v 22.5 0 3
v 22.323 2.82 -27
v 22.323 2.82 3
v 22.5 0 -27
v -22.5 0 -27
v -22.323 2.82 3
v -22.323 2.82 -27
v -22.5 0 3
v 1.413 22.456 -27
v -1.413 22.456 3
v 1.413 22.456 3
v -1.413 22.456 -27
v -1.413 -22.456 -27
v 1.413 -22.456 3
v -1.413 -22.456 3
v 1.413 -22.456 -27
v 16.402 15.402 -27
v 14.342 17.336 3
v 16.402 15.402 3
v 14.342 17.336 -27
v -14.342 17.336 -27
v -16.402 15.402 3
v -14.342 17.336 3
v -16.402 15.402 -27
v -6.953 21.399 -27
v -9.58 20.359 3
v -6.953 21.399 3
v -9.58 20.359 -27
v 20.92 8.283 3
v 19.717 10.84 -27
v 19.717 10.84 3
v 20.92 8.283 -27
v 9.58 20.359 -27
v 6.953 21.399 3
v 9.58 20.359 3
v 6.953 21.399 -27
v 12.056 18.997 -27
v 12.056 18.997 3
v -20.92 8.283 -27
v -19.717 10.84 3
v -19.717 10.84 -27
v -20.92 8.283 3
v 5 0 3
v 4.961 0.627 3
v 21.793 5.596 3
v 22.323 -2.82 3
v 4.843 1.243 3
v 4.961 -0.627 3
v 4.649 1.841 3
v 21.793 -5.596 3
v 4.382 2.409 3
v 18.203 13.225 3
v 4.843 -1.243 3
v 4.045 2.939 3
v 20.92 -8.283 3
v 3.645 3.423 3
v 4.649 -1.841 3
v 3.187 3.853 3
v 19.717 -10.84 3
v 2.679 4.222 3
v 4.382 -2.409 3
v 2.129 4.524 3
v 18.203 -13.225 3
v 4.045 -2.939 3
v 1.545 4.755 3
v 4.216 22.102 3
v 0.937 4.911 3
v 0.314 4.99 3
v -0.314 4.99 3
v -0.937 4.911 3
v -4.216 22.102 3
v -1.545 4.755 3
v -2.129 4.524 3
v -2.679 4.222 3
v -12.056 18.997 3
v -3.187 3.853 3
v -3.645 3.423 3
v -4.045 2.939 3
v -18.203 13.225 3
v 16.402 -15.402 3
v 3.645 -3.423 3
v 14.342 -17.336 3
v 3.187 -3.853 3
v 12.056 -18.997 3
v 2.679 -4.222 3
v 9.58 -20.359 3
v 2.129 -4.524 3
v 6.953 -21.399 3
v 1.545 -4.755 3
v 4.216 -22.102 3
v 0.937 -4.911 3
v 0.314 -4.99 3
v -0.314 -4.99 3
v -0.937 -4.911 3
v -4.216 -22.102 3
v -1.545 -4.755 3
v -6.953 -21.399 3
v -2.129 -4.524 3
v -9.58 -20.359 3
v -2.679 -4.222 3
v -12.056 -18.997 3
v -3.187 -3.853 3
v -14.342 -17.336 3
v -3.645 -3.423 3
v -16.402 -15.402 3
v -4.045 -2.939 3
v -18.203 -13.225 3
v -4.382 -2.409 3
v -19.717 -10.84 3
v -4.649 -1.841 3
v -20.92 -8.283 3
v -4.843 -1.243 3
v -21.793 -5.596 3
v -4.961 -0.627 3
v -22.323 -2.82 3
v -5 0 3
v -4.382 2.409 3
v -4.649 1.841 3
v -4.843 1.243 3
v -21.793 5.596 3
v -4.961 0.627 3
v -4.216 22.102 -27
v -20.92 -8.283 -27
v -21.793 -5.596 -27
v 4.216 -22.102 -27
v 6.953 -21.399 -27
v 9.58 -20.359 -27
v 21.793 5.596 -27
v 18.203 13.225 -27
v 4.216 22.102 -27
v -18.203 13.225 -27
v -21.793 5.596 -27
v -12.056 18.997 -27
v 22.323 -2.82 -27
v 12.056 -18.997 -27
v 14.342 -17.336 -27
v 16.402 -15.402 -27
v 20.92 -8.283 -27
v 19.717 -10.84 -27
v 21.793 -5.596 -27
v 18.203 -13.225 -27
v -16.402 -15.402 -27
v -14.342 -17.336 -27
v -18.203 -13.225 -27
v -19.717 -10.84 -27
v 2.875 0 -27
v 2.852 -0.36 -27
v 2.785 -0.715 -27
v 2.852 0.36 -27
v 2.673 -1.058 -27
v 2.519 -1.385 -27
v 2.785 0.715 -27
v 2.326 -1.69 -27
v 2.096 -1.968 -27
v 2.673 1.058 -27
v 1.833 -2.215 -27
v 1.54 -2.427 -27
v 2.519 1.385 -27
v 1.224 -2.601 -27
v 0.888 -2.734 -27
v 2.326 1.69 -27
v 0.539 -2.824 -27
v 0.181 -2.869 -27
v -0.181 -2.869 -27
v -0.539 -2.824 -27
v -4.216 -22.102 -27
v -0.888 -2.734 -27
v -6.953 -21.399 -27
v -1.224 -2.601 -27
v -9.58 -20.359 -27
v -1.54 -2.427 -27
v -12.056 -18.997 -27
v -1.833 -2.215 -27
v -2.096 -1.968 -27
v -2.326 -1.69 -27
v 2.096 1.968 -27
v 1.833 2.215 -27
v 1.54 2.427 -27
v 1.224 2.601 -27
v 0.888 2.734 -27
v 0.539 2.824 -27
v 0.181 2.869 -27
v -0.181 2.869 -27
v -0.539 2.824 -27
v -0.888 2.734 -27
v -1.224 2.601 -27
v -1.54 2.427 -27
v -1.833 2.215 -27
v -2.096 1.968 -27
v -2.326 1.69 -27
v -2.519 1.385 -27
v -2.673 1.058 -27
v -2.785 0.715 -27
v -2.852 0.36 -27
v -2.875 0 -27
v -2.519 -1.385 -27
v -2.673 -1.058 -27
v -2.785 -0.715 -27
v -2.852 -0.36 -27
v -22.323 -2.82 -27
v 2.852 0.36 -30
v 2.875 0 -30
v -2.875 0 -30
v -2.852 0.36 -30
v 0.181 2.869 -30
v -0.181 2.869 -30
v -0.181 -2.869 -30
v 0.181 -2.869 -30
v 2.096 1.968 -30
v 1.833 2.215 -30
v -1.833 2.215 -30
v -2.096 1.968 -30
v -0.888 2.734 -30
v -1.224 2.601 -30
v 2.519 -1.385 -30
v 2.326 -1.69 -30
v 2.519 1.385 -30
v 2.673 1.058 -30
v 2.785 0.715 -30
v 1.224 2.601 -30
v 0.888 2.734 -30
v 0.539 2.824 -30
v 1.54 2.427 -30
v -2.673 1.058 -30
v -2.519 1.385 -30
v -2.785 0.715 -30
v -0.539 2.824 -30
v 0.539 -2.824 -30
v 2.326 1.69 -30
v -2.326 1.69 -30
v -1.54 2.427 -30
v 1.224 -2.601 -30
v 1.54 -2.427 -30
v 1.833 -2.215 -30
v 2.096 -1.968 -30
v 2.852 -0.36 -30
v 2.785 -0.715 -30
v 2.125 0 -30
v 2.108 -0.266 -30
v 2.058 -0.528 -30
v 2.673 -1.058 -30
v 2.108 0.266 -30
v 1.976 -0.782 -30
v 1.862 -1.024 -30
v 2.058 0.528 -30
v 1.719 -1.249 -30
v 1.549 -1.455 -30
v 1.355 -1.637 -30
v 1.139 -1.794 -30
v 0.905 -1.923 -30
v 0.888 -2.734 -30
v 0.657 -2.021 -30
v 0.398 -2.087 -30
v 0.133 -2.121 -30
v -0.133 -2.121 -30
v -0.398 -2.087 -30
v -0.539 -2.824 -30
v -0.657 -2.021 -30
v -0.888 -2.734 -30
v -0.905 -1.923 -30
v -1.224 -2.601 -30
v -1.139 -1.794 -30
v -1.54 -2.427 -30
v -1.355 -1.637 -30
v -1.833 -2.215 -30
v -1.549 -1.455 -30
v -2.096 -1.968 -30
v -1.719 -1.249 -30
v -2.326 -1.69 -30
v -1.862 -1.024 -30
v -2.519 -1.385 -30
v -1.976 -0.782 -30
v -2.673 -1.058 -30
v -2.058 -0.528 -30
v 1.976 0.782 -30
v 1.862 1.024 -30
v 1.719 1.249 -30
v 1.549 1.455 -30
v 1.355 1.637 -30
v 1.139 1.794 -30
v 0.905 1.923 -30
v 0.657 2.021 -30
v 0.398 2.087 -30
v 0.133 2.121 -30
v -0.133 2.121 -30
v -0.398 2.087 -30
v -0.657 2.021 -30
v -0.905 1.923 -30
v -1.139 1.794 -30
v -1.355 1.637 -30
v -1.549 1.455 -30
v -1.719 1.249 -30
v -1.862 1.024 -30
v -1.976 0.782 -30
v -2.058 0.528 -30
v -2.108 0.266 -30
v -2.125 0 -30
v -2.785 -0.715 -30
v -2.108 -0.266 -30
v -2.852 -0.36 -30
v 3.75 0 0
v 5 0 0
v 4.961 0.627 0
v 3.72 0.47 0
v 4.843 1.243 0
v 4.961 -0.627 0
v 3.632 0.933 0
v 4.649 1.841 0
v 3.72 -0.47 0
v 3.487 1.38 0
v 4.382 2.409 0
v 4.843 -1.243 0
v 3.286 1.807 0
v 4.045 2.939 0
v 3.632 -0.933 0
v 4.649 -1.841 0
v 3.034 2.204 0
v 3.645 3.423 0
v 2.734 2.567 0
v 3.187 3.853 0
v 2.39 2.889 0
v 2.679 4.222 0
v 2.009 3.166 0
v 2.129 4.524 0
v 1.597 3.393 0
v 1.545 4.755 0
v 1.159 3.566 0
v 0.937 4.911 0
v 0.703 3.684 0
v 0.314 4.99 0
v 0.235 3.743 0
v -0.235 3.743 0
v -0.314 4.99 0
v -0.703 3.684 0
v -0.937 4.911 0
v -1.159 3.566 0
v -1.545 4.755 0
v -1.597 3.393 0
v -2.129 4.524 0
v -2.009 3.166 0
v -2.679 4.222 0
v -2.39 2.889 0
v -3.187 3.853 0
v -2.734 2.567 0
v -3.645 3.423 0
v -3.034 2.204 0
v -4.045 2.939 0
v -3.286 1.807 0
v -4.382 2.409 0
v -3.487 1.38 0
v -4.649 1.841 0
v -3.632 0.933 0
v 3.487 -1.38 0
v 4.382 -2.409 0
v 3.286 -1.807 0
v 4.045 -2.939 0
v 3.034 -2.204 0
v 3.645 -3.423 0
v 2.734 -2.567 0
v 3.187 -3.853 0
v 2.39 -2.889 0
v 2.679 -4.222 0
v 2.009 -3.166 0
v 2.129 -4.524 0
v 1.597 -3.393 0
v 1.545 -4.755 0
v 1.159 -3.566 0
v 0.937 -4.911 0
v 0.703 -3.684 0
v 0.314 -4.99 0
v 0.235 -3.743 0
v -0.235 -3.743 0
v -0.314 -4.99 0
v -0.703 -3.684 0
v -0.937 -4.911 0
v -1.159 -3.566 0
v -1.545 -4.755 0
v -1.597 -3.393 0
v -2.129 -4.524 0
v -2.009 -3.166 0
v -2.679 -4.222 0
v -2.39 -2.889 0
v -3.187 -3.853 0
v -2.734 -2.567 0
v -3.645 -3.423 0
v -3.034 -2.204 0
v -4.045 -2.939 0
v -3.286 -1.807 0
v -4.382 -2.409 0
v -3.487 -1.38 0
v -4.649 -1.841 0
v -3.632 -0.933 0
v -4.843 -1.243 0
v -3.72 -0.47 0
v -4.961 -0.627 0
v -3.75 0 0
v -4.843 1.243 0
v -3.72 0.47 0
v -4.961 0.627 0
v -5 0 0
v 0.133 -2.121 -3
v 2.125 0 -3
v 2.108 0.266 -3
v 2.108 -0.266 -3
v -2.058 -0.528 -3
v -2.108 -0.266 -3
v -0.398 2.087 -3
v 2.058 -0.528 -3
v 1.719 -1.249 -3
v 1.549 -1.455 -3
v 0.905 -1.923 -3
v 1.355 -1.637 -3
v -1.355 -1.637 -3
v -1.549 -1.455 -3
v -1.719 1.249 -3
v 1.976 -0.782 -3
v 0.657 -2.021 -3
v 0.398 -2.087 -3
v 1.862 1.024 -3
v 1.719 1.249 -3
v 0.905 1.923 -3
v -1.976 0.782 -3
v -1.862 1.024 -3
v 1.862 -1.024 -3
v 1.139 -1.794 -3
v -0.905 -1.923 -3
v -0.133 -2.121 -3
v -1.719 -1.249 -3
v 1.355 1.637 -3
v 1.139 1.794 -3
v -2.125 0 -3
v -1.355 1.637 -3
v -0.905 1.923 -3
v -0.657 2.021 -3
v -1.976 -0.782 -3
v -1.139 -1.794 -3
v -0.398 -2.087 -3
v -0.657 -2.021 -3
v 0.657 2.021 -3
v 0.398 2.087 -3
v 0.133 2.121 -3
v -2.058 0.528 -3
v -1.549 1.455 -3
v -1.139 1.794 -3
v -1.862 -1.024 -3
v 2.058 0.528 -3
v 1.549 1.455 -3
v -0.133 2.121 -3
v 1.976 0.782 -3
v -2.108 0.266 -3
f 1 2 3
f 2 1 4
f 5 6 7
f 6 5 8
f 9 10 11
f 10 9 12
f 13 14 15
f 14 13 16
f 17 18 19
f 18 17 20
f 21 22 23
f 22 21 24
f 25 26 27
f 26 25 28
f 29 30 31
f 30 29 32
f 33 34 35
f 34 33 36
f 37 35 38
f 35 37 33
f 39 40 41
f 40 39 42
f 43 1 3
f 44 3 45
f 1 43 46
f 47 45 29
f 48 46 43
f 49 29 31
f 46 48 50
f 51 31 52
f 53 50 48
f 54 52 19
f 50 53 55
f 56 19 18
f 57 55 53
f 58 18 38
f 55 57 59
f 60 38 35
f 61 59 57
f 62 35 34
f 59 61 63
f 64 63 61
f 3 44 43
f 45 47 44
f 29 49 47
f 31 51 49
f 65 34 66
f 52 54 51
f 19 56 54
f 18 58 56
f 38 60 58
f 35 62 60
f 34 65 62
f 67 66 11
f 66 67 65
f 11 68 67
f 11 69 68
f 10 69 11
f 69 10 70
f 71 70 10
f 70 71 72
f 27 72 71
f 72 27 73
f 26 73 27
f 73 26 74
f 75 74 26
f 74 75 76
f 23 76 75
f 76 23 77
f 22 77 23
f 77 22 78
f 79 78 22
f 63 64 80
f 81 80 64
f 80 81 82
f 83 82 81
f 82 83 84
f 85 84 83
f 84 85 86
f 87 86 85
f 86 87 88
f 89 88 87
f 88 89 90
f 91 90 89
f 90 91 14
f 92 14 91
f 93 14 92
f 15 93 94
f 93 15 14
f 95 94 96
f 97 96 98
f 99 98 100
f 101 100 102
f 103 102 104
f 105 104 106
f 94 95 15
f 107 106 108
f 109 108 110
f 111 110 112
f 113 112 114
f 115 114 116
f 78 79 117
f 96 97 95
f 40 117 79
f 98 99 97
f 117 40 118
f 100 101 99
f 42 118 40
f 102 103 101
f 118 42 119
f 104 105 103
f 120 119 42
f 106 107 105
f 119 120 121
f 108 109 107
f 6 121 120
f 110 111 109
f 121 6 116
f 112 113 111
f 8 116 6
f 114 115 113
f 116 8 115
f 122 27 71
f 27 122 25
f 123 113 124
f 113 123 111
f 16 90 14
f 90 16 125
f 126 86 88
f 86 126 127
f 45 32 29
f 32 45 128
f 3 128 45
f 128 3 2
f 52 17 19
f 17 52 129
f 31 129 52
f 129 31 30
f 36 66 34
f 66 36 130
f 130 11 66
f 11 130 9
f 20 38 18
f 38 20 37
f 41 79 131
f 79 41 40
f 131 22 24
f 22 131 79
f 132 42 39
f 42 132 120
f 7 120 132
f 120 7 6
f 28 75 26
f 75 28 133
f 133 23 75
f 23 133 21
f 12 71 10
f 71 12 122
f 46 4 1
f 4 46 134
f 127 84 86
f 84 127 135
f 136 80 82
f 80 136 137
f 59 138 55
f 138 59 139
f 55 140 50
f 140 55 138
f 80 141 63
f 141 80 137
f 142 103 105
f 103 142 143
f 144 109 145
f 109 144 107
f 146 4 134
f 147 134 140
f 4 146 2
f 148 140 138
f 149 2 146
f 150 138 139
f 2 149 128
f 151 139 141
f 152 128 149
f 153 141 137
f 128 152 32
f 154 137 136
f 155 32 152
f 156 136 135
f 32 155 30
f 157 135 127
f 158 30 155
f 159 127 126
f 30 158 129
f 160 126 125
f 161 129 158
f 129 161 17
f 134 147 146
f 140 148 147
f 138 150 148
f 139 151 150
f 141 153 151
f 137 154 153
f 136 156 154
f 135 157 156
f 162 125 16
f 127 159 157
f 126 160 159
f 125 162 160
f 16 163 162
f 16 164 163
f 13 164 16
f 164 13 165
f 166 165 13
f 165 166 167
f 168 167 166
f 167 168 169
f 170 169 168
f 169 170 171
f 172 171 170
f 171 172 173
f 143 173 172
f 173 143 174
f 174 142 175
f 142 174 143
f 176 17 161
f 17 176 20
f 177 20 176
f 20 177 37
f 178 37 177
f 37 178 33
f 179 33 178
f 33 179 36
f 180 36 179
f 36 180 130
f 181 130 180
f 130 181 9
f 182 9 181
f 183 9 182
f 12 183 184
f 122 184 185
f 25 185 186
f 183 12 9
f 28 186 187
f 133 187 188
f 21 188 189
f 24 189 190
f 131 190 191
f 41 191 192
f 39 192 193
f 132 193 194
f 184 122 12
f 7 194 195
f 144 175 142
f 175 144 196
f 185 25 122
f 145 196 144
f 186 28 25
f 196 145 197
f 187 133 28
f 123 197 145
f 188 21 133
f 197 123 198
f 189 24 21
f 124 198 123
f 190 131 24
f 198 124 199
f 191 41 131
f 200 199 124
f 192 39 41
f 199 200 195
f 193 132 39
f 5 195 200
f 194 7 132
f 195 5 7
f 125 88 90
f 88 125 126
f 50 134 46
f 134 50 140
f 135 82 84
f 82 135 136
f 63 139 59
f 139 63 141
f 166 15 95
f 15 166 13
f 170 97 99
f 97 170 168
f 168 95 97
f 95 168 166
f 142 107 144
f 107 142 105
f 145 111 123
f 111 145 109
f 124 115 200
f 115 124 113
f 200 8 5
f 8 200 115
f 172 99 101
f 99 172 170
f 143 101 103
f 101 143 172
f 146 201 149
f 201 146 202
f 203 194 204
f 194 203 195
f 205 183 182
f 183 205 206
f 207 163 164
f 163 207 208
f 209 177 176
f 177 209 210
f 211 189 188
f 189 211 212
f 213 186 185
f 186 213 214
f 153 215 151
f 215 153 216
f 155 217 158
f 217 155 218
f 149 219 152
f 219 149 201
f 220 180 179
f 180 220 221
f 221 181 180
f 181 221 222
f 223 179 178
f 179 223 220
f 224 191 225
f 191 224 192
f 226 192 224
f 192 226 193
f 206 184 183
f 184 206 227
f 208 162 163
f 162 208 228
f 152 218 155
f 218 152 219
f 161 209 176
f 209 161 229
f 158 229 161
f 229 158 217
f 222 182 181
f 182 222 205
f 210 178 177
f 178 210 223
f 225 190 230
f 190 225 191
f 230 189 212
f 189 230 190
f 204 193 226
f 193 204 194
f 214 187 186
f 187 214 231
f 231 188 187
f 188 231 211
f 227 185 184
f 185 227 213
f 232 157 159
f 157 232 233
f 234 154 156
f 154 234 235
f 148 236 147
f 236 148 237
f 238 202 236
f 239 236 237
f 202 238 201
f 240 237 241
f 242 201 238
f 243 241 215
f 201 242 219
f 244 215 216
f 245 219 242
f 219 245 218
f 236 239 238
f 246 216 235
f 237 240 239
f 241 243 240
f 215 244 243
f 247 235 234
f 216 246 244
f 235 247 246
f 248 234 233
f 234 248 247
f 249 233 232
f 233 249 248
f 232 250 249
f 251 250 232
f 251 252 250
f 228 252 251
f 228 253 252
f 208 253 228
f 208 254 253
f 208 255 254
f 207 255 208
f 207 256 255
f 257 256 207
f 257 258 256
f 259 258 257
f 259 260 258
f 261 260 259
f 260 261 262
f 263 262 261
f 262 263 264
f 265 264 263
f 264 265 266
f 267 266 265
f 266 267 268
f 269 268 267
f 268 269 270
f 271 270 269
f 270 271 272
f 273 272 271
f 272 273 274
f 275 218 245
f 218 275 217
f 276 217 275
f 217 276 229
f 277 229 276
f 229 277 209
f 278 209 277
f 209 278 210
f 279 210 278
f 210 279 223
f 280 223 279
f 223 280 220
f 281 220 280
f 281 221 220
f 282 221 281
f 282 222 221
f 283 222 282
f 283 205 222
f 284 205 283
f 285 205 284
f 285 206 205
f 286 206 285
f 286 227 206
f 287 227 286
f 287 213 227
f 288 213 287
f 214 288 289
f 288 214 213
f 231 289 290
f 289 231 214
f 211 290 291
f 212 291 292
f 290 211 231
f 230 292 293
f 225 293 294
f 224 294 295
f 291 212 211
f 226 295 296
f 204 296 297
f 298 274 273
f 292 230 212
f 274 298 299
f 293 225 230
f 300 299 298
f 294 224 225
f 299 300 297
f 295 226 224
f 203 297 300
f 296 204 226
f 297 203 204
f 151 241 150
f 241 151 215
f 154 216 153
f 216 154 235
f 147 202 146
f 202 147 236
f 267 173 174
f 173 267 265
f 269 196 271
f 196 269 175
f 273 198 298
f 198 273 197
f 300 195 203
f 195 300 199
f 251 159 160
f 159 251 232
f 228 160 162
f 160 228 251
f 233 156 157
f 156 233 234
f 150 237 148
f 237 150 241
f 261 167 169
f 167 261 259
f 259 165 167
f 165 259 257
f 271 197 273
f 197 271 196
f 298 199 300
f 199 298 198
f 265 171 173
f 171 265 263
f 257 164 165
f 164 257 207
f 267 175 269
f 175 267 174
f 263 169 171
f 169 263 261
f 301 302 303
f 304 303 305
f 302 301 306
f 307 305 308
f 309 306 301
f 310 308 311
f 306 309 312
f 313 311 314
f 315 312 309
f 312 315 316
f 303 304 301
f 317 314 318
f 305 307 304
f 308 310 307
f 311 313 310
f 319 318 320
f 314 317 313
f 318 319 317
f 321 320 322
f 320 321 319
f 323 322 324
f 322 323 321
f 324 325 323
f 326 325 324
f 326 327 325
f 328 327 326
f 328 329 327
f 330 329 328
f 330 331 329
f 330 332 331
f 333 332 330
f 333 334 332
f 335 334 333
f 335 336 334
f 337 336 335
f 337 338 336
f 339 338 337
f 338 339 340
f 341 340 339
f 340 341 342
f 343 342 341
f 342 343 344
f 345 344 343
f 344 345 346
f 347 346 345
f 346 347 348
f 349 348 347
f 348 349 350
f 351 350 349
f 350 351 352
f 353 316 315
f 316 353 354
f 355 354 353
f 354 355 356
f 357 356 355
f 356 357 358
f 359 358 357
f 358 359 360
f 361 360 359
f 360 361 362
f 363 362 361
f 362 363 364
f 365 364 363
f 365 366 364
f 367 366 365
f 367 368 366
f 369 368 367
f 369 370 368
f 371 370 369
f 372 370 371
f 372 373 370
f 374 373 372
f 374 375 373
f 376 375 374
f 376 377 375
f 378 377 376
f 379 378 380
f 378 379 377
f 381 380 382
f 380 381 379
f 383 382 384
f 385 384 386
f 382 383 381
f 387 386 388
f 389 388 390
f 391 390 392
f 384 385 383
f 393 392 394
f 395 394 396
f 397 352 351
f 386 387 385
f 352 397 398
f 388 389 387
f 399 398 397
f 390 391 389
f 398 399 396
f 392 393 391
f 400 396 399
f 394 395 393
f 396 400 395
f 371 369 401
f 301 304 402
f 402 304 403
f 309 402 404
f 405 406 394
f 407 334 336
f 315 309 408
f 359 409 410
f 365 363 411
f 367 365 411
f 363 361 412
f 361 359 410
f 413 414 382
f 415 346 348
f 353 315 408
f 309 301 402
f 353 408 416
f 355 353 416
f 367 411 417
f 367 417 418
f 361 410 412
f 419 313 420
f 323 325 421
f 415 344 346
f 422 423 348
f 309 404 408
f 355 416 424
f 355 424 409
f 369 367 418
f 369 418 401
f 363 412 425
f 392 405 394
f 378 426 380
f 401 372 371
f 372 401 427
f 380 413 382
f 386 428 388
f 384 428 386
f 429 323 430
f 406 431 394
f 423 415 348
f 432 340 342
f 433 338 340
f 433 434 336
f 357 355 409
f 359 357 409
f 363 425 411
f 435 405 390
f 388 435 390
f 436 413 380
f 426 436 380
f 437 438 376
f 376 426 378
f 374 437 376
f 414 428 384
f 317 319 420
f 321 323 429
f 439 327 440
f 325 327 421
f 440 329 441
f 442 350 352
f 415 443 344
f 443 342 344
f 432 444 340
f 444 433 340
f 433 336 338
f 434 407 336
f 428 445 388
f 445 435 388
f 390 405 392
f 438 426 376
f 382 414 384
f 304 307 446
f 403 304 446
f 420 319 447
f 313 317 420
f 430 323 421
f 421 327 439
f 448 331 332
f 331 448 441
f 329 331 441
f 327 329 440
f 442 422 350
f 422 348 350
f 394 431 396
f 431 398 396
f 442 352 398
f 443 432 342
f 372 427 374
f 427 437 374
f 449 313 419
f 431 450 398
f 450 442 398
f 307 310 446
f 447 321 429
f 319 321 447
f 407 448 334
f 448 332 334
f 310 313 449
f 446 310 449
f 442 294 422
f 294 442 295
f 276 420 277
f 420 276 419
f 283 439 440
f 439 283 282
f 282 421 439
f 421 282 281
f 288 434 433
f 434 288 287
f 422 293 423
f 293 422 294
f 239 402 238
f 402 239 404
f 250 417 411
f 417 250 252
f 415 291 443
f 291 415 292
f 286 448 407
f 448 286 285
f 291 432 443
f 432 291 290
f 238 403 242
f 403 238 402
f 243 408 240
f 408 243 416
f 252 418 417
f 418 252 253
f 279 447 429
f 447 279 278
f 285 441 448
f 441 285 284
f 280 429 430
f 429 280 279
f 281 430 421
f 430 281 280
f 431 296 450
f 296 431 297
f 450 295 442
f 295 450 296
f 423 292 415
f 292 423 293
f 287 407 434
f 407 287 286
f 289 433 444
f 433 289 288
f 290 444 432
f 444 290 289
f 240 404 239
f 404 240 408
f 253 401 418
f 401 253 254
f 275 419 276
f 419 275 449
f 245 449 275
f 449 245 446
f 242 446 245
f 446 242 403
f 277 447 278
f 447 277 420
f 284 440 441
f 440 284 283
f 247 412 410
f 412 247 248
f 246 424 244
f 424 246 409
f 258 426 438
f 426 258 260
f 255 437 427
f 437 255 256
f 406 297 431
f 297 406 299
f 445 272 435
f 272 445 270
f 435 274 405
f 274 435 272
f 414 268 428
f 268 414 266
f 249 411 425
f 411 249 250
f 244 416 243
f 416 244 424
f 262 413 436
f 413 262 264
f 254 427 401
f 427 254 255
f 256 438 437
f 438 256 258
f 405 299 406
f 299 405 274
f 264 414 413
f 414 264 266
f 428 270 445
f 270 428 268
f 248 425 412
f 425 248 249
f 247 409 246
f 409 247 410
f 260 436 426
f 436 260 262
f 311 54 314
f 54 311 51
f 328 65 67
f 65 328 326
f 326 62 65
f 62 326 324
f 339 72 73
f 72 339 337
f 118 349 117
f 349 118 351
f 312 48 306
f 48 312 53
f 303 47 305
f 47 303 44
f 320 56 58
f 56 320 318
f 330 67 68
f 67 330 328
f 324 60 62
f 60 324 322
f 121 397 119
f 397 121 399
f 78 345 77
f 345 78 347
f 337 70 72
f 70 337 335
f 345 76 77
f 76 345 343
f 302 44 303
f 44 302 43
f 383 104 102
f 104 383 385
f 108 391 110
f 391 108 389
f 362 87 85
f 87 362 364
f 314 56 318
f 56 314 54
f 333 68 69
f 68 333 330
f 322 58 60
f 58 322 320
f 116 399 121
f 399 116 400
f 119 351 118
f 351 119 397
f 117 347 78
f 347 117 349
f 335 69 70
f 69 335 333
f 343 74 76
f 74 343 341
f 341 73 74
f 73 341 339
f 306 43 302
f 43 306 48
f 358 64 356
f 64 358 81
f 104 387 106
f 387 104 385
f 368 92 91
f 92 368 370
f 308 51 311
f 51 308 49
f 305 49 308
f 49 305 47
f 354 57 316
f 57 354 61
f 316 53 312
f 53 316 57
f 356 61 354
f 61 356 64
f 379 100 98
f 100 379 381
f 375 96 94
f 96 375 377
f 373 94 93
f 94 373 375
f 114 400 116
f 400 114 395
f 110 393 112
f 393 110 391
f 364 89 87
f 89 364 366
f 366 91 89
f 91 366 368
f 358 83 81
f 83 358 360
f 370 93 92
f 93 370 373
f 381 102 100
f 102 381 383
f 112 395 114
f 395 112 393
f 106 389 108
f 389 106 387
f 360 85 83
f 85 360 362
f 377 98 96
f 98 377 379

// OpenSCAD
$fn = 50;

difference() {
	union() {
		translate(v = [0, 0, -27.0]) {
			cylinder(h = 30, r = 22.5);
		}
		#translate(v = [0, 0, -30.0]) {
			cylinder(h = 30, r = 2.875);
		}
	}
	union() {
		translate(v = [0, 0, 0]) {
			rotate(a = [0, 0, 0]) {
				difference() {
					union() {
						translate(v = [0, 0, -30.0]) {
							cylinder(h = 30, r = 2.0);
						}
						translate(v = [0, 0, -3]) {
							cylinder(h = 3, r1 = 2.125, r2 = 3.75);
						}
						translate(v = [0, 0, -30.0]) {
							cylinder(h = 30, r = 2.125);
						}
						translate(v = [0, 0, -30.0]) {
							cylinder(h = 30, r = 2.0);
						}
					}
					union();
				}
			}
		}
		#cylinder(h = 3, r = 5.0);
	}
}
